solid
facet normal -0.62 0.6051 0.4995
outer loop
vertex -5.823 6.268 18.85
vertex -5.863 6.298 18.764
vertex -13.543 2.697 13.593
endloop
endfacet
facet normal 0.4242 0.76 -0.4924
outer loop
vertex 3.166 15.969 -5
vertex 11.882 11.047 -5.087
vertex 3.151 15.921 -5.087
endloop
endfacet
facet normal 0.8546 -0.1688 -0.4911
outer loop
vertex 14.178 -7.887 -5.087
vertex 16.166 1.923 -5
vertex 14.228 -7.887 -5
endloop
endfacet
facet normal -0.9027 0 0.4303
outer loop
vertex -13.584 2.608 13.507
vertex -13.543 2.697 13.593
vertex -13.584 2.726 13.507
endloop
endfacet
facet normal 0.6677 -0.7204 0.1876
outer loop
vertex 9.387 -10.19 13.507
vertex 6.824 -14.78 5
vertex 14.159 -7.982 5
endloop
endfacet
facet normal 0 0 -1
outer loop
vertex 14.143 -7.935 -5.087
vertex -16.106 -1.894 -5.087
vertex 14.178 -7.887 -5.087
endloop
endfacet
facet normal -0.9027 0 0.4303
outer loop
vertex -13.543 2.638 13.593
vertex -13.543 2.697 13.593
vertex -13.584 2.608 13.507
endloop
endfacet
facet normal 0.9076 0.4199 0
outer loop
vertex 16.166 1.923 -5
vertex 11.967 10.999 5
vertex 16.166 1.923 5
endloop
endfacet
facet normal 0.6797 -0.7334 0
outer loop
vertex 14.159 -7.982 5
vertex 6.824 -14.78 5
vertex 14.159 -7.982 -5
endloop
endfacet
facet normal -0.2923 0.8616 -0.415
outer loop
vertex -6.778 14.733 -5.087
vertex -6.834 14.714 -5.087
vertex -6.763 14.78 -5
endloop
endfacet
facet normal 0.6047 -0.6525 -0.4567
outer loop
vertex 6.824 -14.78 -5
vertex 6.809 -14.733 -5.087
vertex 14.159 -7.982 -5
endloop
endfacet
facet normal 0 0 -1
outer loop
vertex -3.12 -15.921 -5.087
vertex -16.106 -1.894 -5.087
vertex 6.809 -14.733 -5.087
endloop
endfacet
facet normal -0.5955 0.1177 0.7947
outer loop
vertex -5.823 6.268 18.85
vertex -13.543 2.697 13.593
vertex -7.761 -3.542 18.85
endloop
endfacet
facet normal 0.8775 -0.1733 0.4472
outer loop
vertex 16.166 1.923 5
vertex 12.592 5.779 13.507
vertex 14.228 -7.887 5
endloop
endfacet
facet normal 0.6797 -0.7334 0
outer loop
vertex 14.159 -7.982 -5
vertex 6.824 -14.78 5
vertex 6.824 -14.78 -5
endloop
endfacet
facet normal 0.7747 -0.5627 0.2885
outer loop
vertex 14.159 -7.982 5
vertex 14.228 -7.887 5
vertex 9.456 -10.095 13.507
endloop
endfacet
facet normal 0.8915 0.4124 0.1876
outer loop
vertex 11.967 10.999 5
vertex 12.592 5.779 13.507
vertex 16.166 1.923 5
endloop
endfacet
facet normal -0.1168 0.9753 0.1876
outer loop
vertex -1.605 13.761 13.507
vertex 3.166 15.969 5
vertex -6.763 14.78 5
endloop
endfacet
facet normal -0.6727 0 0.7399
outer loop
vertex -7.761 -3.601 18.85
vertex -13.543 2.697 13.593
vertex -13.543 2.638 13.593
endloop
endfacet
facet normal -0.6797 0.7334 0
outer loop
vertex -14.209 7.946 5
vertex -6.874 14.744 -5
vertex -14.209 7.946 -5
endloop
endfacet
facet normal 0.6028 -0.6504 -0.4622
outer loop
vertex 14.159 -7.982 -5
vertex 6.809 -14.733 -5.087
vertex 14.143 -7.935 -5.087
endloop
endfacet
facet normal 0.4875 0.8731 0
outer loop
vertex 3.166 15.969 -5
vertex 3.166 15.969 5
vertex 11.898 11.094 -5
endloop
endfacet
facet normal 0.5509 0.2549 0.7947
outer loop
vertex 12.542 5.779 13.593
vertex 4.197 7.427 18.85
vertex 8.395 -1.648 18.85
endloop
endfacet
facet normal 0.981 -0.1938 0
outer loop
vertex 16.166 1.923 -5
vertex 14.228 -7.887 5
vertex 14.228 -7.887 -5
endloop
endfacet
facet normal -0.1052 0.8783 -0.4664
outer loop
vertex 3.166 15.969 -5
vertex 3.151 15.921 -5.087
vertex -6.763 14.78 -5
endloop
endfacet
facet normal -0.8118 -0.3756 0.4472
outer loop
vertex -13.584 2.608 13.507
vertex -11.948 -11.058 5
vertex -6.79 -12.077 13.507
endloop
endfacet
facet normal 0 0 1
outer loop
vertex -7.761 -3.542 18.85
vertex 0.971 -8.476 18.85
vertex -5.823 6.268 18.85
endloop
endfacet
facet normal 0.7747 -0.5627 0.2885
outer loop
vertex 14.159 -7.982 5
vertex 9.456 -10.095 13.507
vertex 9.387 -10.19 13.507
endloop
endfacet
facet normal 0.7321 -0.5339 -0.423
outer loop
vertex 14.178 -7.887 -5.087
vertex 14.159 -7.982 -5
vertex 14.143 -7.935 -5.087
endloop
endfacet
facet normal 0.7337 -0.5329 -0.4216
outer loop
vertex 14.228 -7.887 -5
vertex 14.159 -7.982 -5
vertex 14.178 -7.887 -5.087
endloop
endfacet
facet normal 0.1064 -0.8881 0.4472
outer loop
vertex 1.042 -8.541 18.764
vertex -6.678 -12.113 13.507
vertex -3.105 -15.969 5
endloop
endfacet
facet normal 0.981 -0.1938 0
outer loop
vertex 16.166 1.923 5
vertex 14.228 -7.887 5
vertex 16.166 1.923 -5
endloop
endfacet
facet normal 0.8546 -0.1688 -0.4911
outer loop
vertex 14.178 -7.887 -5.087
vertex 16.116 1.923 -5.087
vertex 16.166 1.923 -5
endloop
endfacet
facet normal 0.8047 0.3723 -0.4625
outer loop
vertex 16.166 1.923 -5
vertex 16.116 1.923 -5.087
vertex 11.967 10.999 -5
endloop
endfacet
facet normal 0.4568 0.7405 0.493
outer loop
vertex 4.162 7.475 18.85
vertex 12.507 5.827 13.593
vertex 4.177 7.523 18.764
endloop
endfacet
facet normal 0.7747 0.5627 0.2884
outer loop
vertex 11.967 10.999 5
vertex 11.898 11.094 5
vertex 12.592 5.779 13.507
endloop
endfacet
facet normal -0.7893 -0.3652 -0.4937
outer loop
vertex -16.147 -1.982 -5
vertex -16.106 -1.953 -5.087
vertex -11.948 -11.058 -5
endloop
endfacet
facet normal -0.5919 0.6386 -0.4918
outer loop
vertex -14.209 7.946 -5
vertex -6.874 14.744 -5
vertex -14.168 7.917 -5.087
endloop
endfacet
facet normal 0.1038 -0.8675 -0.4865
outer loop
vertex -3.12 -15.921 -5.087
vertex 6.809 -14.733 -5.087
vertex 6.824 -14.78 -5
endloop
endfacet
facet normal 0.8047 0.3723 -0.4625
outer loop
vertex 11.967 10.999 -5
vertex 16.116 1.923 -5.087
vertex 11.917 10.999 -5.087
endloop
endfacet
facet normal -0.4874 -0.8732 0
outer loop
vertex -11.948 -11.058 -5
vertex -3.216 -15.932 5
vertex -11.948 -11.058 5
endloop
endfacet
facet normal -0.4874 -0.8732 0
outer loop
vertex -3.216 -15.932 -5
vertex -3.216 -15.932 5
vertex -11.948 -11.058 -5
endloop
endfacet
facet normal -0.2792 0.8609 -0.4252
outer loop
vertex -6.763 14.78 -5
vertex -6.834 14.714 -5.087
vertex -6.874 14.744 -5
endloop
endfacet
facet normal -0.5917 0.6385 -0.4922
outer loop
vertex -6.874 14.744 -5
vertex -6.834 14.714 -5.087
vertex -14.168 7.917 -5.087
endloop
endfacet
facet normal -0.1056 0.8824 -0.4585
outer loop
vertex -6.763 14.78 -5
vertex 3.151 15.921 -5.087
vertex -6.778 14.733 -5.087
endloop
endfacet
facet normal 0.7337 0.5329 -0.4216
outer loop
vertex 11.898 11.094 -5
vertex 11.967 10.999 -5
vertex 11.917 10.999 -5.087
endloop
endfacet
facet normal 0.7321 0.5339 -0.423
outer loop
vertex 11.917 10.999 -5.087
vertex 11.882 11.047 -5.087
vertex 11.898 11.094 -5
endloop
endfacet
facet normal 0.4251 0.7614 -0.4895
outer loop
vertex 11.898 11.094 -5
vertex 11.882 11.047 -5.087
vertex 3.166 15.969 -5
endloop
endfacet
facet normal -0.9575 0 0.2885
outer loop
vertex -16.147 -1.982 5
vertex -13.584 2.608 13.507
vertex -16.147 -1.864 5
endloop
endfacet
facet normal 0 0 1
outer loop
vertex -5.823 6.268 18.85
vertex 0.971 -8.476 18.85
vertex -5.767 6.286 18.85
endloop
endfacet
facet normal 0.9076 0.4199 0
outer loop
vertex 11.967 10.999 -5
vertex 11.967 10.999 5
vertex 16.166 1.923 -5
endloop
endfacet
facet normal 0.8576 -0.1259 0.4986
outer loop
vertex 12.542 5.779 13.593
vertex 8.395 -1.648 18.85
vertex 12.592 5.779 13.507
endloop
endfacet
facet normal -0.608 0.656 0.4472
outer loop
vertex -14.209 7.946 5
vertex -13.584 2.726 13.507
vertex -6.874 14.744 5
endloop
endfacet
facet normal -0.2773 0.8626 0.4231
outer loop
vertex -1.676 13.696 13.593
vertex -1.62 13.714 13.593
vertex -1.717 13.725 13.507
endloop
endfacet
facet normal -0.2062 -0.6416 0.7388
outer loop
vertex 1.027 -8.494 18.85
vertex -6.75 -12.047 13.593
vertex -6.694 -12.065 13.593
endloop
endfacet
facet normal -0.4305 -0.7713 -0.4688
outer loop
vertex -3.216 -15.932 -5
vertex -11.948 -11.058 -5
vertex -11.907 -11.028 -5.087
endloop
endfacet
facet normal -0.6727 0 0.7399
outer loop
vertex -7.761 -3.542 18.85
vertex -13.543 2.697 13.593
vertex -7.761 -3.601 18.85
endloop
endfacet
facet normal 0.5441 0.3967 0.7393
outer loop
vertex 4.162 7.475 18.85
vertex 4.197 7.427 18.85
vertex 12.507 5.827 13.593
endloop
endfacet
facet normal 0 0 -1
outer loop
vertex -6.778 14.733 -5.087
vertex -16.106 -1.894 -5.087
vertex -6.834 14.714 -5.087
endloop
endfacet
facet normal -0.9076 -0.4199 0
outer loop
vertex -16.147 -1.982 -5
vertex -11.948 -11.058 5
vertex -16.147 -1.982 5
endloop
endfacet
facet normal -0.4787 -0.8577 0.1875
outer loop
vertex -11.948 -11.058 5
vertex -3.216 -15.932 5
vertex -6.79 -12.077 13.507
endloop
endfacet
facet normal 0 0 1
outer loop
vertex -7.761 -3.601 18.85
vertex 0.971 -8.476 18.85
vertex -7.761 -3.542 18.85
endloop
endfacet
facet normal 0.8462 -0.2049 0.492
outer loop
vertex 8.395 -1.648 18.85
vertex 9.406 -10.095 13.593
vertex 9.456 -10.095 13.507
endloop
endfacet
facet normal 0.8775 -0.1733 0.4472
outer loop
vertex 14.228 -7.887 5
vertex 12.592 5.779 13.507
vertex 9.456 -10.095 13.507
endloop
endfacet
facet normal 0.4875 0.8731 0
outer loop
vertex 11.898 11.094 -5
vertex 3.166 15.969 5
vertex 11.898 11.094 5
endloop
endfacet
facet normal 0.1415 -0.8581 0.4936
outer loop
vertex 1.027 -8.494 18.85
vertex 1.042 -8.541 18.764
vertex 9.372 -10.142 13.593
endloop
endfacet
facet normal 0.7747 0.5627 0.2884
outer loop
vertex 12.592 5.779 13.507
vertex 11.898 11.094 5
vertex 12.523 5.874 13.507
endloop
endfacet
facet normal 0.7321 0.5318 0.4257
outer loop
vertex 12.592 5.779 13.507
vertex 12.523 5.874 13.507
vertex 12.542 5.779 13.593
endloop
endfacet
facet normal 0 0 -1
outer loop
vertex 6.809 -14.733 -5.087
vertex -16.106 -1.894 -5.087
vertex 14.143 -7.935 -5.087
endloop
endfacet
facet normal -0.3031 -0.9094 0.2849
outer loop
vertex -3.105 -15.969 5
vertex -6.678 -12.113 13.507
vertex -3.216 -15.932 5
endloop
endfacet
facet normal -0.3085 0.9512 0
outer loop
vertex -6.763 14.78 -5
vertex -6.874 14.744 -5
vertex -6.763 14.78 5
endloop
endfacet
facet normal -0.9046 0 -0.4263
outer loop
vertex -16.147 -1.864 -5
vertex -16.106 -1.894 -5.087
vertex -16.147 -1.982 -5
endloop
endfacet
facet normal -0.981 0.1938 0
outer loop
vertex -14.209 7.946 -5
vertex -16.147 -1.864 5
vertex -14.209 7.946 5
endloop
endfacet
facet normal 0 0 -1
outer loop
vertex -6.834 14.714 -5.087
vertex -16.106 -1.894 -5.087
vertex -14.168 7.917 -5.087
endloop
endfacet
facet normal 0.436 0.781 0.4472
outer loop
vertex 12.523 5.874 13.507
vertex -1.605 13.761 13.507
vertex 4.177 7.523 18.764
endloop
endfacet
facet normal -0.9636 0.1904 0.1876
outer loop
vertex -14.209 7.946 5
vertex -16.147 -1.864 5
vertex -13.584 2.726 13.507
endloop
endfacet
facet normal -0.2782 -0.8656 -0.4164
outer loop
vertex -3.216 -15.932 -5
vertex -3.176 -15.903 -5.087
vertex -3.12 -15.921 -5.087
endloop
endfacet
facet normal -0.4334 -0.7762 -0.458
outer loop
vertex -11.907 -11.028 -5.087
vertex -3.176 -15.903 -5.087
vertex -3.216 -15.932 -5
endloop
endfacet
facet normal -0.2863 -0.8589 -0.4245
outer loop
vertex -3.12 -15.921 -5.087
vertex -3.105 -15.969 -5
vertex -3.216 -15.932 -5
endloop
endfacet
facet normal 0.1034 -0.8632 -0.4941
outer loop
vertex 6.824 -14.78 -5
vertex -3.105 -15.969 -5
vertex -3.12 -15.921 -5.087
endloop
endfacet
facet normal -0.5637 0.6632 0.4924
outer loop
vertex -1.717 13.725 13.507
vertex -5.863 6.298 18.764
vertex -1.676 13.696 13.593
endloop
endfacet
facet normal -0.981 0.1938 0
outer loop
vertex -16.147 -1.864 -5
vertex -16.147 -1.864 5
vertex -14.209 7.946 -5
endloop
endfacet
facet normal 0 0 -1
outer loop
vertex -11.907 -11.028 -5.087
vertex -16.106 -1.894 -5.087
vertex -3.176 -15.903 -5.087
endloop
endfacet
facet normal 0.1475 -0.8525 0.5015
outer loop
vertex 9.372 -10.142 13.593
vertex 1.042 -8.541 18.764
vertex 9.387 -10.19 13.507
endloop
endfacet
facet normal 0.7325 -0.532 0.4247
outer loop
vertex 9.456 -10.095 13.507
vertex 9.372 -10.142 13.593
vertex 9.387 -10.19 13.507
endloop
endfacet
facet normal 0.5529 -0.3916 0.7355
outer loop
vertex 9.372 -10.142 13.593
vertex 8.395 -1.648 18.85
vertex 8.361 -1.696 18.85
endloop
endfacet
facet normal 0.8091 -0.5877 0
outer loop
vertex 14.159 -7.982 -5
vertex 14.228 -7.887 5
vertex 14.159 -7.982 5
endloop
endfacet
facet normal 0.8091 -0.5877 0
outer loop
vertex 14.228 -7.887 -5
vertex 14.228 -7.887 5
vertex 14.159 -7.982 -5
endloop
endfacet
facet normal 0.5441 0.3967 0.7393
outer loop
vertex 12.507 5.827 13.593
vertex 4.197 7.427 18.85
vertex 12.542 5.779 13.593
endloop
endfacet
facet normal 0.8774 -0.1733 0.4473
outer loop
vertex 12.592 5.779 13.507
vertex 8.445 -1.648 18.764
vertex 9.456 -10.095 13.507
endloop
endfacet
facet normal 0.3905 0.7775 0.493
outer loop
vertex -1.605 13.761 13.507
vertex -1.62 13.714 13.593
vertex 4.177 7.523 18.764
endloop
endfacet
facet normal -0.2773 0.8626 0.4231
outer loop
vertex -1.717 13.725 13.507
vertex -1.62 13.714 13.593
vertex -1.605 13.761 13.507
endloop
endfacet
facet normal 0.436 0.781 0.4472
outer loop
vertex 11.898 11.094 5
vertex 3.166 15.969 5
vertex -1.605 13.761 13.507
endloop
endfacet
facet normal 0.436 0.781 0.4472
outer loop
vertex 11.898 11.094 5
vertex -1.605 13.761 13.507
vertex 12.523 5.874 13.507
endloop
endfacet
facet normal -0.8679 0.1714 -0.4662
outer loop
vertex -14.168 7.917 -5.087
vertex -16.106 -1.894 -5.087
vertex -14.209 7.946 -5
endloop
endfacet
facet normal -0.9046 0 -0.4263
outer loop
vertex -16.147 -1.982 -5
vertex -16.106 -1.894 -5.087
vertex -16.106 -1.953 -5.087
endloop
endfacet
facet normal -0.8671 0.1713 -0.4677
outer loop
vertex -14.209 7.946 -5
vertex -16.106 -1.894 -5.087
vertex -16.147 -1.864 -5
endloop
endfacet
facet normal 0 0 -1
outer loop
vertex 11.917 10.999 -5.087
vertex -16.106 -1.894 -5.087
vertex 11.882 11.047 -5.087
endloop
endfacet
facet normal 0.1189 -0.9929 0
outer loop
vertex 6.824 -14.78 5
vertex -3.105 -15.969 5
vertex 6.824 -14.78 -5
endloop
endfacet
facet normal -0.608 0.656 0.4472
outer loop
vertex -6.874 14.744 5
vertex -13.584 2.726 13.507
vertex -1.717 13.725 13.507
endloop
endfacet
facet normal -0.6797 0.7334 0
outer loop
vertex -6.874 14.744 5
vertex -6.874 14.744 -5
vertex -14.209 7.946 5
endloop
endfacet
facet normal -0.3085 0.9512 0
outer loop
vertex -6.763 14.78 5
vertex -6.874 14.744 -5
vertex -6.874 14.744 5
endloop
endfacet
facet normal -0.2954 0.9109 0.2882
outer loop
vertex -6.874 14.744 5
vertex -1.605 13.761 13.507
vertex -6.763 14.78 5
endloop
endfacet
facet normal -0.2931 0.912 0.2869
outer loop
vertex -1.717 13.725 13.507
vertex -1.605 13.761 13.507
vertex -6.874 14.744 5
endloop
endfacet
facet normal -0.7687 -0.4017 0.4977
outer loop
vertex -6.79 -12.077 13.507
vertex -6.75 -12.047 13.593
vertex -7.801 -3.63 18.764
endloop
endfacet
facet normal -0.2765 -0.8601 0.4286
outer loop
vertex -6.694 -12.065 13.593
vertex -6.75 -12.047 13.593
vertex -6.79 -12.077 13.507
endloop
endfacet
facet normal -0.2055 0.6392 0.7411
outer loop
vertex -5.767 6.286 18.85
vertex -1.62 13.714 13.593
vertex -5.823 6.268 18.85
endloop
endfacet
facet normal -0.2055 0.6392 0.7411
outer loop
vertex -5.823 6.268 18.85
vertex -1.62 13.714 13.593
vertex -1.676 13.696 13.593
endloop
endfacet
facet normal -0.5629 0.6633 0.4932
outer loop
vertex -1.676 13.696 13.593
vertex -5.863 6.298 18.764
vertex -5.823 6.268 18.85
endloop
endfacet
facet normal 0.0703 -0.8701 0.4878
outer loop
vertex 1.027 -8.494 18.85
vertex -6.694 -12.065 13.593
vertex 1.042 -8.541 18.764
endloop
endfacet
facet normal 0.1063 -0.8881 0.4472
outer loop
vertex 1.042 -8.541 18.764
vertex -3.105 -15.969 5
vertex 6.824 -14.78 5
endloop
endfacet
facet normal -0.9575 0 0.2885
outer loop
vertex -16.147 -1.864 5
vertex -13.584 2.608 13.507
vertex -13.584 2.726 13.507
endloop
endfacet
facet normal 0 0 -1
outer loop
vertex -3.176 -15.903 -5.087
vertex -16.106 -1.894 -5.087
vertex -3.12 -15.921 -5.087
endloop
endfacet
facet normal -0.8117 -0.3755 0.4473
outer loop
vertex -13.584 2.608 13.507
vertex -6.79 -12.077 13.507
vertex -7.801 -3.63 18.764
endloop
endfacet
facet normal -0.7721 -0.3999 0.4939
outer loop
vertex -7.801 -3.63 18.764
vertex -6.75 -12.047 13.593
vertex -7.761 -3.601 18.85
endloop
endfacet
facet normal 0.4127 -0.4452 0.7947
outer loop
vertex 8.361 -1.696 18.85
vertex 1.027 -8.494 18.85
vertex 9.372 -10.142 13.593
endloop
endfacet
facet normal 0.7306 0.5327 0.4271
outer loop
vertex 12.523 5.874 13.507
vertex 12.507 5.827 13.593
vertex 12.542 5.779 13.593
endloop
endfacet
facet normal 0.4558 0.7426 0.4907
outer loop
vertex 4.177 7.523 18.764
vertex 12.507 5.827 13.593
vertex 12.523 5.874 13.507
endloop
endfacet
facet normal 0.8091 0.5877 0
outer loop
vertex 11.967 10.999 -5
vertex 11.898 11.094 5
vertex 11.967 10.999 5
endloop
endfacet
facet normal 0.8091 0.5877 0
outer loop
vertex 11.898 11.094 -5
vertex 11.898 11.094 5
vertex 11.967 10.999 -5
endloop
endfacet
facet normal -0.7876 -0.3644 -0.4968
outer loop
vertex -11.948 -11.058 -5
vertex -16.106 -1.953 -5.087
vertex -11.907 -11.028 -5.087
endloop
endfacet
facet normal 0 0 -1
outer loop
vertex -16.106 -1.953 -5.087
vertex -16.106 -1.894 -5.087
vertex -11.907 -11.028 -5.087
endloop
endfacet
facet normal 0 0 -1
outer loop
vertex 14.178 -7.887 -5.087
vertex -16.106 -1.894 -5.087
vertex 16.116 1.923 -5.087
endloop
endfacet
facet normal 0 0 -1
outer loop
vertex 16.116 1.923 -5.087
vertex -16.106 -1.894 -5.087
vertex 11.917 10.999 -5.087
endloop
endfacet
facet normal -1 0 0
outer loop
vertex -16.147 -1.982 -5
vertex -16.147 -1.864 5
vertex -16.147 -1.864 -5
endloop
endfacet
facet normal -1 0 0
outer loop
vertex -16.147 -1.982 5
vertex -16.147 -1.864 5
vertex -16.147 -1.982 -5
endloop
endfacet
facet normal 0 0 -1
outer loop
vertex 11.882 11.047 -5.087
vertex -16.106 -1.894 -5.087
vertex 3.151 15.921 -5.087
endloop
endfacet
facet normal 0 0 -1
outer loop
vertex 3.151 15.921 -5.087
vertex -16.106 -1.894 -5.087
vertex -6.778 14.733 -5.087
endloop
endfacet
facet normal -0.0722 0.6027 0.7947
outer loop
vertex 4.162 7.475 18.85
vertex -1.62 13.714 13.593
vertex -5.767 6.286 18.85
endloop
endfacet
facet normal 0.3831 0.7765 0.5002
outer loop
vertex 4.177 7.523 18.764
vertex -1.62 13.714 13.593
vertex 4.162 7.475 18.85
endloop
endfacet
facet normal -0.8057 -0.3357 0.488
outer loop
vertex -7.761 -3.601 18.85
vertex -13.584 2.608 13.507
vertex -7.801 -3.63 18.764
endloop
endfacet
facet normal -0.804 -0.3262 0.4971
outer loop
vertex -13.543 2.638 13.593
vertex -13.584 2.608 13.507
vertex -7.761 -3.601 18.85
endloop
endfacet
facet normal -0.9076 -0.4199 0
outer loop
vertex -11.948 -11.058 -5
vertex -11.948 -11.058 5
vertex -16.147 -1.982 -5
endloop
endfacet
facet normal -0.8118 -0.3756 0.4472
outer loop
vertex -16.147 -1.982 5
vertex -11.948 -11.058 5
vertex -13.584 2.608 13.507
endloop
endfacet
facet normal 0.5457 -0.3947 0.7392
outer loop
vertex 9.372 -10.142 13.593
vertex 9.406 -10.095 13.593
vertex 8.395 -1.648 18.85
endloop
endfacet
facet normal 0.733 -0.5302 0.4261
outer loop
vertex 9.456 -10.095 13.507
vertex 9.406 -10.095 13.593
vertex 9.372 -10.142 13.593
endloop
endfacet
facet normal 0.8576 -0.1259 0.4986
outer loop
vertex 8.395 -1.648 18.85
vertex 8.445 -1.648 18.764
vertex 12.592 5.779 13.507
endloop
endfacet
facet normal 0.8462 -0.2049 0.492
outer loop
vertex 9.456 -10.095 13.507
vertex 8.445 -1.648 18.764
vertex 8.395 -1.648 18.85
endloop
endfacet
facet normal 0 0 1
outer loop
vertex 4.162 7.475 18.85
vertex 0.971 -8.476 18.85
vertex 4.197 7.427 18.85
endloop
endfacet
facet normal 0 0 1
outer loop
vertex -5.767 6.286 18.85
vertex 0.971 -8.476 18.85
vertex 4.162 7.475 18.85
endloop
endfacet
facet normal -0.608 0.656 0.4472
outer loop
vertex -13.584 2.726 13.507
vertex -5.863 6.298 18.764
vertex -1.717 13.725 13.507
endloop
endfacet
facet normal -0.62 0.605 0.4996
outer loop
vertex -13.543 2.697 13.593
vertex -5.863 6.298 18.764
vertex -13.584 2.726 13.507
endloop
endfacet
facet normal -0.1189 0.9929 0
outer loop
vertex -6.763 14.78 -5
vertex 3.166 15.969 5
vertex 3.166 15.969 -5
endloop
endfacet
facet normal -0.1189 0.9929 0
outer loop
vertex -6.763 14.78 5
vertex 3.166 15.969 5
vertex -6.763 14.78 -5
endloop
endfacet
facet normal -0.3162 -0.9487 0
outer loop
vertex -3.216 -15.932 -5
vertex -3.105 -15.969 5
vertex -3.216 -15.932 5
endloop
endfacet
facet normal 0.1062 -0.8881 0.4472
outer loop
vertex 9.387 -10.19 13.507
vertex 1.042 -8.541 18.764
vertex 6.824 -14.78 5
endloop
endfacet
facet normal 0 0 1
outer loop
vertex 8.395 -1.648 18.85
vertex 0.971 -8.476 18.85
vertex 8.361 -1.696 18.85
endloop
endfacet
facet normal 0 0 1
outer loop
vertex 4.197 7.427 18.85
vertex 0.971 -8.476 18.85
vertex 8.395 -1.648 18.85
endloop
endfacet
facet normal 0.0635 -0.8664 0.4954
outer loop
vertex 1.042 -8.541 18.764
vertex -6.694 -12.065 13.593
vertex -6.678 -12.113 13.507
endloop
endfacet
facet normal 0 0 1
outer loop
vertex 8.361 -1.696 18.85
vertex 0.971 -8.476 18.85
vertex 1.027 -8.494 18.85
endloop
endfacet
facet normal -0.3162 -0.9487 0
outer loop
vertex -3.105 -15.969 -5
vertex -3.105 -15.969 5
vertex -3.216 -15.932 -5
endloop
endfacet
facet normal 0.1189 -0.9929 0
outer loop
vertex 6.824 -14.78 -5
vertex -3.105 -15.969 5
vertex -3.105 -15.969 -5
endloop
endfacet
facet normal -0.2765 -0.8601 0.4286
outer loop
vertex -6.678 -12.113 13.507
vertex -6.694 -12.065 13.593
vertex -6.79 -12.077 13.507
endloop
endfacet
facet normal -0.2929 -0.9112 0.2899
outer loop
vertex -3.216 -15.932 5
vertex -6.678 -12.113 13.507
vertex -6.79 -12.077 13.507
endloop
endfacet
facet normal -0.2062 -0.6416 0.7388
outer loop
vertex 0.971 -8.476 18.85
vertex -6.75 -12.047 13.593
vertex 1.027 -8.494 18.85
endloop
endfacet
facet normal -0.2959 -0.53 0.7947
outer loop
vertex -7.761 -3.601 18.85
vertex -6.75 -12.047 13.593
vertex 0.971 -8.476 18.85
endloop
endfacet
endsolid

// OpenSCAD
// Auto-generated OpenSCAD file

    inner_points = 10*[[1.412777650098969, -0.7887289142225774, 0.5000000000000034], [1.4127776500989218, -0.7887289142226671, -0.4999999999999966], [-1.4127776500989218, 0.7887289142226671, 0.4999999999999966], [-1.412777650098969, 0.7887289142225774, -0.5000000000000034], [1.606564352039886, 0.19231477193561908, 0.4999999999999063], [1.6065643520398385, 0.19231477193552948, -0.5000000000000936], [0.6793579043664613, -1.4685049630575326, 0.5000000000000991], [0.6793579043664137, -1.4685049630576223, -0.49999999999990086], [-0.6793579043664137, 1.4685049630576223, 0.49999999999990086], [-0.6793579043664613, 1.4685049630575326, -0.5000000000000991], [-1.6065643520398385, -0.19231477193552948, 0.5000000000000936], [-1.606564352039886, -0.19231477193561908, -0.4999999999999063], [1.186698076615527, 1.0999007517531108, 0.49999999999984507], [1.1866980766154795, 1.0999007517530213, -0.500000000000155], [-0.31355347030812525, -1.5873620286524022, 0.500000000000157], [-0.3135534703081727, -1.5873620286524917, -0.49999999999984296], [0.3135534703081727, 1.5873620286524917, 0.49999999999984296], [0.31355347030812525, 1.5873620286524022, -0.500000000000157], [-1.1866980766154795, -1.0999007517530213, 0.500000000000155], [-1.186698076615527, -1.0999007517531108, -0.49999999999984507], [0.9356314635858262, -1.0094656781426679, 1.3506508083520856], [-1.3502907928204737, 0.2667245129793352, 1.3506508083520803], [1.2491849338939751, 0.5778963505097789, 1.3506508083519289], [-0.16359271620497018, 1.3666252647324013, 1.3506508083519253], [-0.6709328884540361, -1.2017804500782423, 1.3506508083521793], [0.8345256046592242, -0.16484481465374887, 1.8763819204711487], [-0.5782520454397211, 0.6238840995688734, 1.8763819204711452], [0.10110585892671631, -0.8446208634887041, 1.8763819204712444], [-0.772038747380638, -0.35715958658932323, 1.8763819204712422], [0.41465932923486515, 0.7427411651637427, 1.8763819204710874]];

    outer_points = 10*[[1.6771921982195477, 0.19515858012450776, -0.13028218445037648], [1.3574270510105522, -0.19515858012450776, -0.9936492935329229], [-1.3574270510105522, 0.19515858012450776, 0.9936492935329229], [-1.6771921982195477, -0.19515858012450776, 0.13028218445037648], [1.2584841650715657, 1.0707777336101003, -0.3710615046307498], [0.9387190178625701, 0.6804605733610847, -1.2344286137132965], [1.516339526221925, -0.6804605733610847, 0.3251489475118551], [1.1965743790129293, -1.0707777336101003, -0.5382181615706915], [-1.1965743790129293, 1.0707777336101003, 0.5382181615706915], [-1.516339526221925, 0.6804605733610847, -0.3251489475118551], [-0.9387190178625701, -0.6804605733610847, 1.2344286137132965], [-1.2584841650715657, -1.0707777336101003, 0.3710615046307498], [0.4201476640778902, 1.6119401316646074, -0.3052194965084559], [0.10038251686889449, 1.221622971415592, -1.1685866055910024], [0.8373664026005505, -1.221622971415592, 0.8212726783812108], [0.5176012553915548, -1.6119401316646074, -0.04209443070133567], [-0.5176012553915548, 1.6119401316646074, 0.04209443070133567], [-0.8373664026005505, 1.221622971415592, -0.8212726783812108], [-0.10038251686889449, -1.221622971415592, 1.1685866055910024], [-0.4201476640778902, -1.6119401316646074, 0.3052194965084559], [1.7170785381923828, 0.1355933980850842, 0.8671450404498573], [-0.7379800058921122, 0.1355933980850842, 1.7764247066512986], [1.03959470919633, 1.552374949625184, 0.4775559166099197], [-0.47771491541871985, 1.552374949625184, 1.0395216556015694], [0.6184769467253148, -0.7400257554005085, 1.6698900996218804], [1.3230216188344461, 0.9743992445242382, 1.2428096465623142], [-0.19428800578060368, 0.9743992445242382, 1.8047753855539637], [1.1621689468368233, 0.0987800910386456, 1.6982407785245455], [0.22442002736737826, 0.0987800910386456, 2.0455547057343373], [0.4846851178407707, 1.5155616425787453, 1.308651654684608]];

    // Convex hull for inner set (I)
    module inner_hull() {
        hull() {
            for (p = inner_points) {
                translate(p) sphere(r=0.1);
            }
        }
    }

    // Convex hull for outer set (O) minus inner hull (O \ I)
    module outer_minus_inner() {
        difference() {
            hull() {
                for (p = outer_points) {
                    translate(p) sphere(r=0.1);
                }
            }
            inner_hull(); // Subtract inner hull
        }
    }

    // Convex hull for outer set (O) minus all translated inner hulls
    module outer_minus_AllTranslationInner() {
        difference() {
            hull() {
                for (p = outer_points) {
                    translate(p) sphere(r=0.1);
                }
            }
            hull() {
                translate([0,0,50]) inner_hull();
                translate([0,0,-50]) inner_hull();
            }; // Subtract translated inner hulls
        }
    }

    // Difference between outer_minus_inner and outer_minus_AllTranslationInner
    module outer_minus_inner_diff() {
        difference() {
            // Outer minus inner
            difference() {
                hull() {
                    for (p = outer_points) {
                        translate(p) sphere(r=0.1);
                    }
                }
                inner_hull();
            }

            // Subtract Outer minus AllTranslationInner
            difference() {
                hull() {
                    for (p = outer_points) {
                        translate(p) sphere(r=0.1);
                    }
                }
                hull() {
                    translate([0,0,50]) inner_hull();
                    translate([0,0,-50]) inner_hull();
                };
            }
        }
    }

    // Rendering all with colors applied
    color([1, 0, 0, 0.5]) inner_hull(); // Transparent red
    
